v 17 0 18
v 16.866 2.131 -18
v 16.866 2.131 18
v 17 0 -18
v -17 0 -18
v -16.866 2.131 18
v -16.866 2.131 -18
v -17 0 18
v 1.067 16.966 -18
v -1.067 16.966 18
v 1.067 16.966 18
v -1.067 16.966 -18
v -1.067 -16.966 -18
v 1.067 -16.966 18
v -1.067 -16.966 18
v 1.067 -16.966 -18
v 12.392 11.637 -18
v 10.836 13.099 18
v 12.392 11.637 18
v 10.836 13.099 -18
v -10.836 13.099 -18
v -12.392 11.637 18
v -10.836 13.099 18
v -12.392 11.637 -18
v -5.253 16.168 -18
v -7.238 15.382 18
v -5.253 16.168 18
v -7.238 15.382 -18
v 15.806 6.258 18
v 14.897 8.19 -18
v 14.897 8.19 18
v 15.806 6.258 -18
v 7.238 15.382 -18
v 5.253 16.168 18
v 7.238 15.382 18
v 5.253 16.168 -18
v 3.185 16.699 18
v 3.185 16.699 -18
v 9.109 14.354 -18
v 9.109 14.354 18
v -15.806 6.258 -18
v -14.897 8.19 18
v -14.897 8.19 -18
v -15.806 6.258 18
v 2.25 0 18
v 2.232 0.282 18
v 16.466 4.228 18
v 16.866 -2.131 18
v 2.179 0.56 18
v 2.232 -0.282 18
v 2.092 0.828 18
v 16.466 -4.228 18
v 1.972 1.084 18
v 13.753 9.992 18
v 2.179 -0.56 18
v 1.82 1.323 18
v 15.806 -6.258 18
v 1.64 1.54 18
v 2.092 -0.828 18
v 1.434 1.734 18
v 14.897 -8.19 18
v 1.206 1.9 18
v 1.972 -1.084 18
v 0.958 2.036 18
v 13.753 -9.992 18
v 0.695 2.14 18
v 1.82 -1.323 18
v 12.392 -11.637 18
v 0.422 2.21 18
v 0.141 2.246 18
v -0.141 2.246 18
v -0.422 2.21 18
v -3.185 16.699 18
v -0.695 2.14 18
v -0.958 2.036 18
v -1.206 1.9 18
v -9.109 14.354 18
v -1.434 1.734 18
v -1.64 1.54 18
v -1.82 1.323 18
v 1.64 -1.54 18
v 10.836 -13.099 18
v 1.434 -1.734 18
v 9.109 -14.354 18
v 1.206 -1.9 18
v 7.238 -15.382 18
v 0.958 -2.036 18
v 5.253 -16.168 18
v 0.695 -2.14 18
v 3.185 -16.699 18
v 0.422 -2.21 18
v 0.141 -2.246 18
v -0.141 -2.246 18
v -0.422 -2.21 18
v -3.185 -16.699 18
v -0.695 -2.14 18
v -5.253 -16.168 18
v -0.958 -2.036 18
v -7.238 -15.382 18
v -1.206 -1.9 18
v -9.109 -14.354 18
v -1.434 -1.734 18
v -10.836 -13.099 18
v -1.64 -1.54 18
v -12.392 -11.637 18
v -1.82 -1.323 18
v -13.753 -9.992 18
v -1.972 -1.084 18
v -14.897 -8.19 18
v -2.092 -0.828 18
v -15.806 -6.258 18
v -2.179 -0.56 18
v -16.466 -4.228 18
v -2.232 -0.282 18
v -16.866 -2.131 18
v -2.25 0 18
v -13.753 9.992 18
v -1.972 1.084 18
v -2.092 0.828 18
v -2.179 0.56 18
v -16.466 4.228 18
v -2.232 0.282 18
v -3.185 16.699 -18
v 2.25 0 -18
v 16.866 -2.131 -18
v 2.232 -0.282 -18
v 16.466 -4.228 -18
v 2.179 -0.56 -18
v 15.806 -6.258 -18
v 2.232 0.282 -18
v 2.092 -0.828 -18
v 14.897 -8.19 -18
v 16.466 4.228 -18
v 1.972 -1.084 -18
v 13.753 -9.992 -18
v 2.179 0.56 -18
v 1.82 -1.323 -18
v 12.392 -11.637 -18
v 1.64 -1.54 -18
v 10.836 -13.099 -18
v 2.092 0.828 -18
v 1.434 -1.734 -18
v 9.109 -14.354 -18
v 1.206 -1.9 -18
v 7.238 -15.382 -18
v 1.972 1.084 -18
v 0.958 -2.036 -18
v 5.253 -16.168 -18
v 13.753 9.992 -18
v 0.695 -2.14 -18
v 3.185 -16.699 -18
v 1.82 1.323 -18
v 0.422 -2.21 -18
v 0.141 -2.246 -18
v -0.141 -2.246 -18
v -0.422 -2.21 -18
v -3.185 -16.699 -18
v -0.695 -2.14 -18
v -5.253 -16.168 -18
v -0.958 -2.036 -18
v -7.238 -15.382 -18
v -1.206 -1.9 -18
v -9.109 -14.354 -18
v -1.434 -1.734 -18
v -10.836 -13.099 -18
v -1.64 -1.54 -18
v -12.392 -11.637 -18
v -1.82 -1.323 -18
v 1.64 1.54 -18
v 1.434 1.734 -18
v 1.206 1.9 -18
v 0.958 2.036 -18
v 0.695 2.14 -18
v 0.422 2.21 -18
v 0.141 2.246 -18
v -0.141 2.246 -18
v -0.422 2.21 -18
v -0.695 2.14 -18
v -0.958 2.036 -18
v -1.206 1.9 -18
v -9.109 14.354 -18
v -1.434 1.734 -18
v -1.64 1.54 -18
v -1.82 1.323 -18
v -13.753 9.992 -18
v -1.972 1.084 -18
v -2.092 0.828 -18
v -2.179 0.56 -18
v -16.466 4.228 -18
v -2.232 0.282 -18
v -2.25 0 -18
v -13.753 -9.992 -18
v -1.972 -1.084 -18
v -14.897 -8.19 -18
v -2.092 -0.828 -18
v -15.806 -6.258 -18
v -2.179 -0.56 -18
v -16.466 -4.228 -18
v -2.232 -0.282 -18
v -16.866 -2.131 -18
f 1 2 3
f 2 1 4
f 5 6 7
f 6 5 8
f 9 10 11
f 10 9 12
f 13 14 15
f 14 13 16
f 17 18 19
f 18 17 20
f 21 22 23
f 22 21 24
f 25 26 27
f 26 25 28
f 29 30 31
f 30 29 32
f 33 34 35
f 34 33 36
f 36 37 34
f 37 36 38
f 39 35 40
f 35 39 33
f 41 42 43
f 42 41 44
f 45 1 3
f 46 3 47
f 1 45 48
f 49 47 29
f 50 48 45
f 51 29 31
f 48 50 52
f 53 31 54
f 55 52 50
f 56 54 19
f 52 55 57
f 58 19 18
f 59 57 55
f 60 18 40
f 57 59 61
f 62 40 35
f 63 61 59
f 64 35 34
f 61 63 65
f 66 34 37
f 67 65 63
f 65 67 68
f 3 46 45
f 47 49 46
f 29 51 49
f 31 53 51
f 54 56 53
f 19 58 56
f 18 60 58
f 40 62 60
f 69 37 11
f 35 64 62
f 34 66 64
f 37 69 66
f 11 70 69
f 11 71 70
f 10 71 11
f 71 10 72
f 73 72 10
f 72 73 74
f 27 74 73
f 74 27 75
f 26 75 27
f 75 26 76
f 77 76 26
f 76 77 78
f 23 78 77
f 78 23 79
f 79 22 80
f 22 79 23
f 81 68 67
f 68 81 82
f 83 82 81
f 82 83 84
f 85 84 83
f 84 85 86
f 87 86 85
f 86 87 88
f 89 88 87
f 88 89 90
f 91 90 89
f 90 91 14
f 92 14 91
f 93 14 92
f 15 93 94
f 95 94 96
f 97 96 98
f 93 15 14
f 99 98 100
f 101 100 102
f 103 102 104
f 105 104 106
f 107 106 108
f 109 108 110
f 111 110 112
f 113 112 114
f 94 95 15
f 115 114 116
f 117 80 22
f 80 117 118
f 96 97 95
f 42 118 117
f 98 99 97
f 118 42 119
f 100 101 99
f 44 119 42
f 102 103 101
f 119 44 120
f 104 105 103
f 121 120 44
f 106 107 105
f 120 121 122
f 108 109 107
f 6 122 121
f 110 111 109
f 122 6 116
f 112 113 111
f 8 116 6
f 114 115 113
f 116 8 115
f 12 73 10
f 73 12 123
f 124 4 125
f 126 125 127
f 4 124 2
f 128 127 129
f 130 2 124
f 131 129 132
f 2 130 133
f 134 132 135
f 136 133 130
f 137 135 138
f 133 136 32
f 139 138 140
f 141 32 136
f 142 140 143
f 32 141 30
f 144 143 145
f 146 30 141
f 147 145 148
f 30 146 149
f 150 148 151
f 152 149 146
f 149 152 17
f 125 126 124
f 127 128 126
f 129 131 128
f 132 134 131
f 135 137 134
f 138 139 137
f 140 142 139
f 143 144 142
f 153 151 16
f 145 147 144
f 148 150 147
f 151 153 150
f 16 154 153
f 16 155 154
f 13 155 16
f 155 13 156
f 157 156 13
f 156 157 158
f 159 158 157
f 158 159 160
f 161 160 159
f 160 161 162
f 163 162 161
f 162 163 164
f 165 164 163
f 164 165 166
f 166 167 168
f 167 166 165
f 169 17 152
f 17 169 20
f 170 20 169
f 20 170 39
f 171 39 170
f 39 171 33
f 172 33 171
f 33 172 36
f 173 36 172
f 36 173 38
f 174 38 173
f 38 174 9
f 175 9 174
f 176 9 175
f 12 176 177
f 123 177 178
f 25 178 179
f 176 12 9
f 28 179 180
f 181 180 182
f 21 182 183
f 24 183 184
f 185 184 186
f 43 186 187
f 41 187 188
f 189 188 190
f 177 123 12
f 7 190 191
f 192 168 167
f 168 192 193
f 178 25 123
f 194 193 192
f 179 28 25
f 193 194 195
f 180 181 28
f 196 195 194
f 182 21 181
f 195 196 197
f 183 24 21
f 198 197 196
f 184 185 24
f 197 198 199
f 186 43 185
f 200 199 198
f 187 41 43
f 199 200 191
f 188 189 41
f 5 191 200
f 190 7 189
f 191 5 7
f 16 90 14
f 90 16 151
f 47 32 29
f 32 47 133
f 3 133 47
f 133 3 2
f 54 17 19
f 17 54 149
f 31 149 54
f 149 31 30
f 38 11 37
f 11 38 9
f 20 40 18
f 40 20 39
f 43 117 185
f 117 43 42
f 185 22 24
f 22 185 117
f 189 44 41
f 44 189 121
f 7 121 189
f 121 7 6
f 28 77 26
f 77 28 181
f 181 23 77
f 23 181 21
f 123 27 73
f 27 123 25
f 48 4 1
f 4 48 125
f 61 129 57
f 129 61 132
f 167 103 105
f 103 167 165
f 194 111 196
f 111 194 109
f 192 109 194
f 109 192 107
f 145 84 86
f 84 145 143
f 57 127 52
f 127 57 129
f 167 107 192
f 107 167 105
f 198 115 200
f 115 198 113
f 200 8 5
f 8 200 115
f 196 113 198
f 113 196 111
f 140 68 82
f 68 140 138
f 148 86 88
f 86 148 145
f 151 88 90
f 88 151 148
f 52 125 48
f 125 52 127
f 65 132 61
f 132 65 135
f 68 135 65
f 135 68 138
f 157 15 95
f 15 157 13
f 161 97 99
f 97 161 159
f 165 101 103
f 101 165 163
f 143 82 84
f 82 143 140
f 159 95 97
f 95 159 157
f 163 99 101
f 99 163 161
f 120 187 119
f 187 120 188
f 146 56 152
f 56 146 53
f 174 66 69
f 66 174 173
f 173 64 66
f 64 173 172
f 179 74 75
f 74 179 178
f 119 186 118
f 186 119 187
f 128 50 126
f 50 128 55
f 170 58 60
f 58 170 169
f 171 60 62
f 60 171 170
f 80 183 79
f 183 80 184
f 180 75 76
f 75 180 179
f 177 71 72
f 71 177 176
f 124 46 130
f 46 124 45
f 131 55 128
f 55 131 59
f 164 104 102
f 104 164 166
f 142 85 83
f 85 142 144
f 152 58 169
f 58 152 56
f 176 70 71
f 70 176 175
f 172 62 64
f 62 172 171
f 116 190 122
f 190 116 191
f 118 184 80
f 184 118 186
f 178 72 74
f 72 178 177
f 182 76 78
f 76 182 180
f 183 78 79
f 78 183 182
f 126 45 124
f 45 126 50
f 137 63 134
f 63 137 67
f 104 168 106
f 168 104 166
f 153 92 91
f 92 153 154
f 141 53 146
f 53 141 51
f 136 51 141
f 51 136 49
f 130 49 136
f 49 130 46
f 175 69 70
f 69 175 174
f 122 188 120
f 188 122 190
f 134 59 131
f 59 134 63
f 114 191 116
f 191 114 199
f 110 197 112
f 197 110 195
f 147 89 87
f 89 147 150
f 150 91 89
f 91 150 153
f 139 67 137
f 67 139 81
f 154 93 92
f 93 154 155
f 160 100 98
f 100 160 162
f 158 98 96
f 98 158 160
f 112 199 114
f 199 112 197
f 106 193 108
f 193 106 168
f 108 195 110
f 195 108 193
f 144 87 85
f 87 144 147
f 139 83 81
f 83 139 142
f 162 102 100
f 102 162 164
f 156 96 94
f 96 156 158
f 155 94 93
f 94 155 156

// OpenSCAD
$fn = 50;


difference() {
	union() {
		translate(v = [0, 0, -18.0000000000]) {
			cylinder(h = 36, r = 17.0000000000);
		}
	}
	union() {
		translate(v = [0, 0, -100.0000000000]) {
			cylinder(h = 200, r = 2.2500000000);
		}
	}
}
